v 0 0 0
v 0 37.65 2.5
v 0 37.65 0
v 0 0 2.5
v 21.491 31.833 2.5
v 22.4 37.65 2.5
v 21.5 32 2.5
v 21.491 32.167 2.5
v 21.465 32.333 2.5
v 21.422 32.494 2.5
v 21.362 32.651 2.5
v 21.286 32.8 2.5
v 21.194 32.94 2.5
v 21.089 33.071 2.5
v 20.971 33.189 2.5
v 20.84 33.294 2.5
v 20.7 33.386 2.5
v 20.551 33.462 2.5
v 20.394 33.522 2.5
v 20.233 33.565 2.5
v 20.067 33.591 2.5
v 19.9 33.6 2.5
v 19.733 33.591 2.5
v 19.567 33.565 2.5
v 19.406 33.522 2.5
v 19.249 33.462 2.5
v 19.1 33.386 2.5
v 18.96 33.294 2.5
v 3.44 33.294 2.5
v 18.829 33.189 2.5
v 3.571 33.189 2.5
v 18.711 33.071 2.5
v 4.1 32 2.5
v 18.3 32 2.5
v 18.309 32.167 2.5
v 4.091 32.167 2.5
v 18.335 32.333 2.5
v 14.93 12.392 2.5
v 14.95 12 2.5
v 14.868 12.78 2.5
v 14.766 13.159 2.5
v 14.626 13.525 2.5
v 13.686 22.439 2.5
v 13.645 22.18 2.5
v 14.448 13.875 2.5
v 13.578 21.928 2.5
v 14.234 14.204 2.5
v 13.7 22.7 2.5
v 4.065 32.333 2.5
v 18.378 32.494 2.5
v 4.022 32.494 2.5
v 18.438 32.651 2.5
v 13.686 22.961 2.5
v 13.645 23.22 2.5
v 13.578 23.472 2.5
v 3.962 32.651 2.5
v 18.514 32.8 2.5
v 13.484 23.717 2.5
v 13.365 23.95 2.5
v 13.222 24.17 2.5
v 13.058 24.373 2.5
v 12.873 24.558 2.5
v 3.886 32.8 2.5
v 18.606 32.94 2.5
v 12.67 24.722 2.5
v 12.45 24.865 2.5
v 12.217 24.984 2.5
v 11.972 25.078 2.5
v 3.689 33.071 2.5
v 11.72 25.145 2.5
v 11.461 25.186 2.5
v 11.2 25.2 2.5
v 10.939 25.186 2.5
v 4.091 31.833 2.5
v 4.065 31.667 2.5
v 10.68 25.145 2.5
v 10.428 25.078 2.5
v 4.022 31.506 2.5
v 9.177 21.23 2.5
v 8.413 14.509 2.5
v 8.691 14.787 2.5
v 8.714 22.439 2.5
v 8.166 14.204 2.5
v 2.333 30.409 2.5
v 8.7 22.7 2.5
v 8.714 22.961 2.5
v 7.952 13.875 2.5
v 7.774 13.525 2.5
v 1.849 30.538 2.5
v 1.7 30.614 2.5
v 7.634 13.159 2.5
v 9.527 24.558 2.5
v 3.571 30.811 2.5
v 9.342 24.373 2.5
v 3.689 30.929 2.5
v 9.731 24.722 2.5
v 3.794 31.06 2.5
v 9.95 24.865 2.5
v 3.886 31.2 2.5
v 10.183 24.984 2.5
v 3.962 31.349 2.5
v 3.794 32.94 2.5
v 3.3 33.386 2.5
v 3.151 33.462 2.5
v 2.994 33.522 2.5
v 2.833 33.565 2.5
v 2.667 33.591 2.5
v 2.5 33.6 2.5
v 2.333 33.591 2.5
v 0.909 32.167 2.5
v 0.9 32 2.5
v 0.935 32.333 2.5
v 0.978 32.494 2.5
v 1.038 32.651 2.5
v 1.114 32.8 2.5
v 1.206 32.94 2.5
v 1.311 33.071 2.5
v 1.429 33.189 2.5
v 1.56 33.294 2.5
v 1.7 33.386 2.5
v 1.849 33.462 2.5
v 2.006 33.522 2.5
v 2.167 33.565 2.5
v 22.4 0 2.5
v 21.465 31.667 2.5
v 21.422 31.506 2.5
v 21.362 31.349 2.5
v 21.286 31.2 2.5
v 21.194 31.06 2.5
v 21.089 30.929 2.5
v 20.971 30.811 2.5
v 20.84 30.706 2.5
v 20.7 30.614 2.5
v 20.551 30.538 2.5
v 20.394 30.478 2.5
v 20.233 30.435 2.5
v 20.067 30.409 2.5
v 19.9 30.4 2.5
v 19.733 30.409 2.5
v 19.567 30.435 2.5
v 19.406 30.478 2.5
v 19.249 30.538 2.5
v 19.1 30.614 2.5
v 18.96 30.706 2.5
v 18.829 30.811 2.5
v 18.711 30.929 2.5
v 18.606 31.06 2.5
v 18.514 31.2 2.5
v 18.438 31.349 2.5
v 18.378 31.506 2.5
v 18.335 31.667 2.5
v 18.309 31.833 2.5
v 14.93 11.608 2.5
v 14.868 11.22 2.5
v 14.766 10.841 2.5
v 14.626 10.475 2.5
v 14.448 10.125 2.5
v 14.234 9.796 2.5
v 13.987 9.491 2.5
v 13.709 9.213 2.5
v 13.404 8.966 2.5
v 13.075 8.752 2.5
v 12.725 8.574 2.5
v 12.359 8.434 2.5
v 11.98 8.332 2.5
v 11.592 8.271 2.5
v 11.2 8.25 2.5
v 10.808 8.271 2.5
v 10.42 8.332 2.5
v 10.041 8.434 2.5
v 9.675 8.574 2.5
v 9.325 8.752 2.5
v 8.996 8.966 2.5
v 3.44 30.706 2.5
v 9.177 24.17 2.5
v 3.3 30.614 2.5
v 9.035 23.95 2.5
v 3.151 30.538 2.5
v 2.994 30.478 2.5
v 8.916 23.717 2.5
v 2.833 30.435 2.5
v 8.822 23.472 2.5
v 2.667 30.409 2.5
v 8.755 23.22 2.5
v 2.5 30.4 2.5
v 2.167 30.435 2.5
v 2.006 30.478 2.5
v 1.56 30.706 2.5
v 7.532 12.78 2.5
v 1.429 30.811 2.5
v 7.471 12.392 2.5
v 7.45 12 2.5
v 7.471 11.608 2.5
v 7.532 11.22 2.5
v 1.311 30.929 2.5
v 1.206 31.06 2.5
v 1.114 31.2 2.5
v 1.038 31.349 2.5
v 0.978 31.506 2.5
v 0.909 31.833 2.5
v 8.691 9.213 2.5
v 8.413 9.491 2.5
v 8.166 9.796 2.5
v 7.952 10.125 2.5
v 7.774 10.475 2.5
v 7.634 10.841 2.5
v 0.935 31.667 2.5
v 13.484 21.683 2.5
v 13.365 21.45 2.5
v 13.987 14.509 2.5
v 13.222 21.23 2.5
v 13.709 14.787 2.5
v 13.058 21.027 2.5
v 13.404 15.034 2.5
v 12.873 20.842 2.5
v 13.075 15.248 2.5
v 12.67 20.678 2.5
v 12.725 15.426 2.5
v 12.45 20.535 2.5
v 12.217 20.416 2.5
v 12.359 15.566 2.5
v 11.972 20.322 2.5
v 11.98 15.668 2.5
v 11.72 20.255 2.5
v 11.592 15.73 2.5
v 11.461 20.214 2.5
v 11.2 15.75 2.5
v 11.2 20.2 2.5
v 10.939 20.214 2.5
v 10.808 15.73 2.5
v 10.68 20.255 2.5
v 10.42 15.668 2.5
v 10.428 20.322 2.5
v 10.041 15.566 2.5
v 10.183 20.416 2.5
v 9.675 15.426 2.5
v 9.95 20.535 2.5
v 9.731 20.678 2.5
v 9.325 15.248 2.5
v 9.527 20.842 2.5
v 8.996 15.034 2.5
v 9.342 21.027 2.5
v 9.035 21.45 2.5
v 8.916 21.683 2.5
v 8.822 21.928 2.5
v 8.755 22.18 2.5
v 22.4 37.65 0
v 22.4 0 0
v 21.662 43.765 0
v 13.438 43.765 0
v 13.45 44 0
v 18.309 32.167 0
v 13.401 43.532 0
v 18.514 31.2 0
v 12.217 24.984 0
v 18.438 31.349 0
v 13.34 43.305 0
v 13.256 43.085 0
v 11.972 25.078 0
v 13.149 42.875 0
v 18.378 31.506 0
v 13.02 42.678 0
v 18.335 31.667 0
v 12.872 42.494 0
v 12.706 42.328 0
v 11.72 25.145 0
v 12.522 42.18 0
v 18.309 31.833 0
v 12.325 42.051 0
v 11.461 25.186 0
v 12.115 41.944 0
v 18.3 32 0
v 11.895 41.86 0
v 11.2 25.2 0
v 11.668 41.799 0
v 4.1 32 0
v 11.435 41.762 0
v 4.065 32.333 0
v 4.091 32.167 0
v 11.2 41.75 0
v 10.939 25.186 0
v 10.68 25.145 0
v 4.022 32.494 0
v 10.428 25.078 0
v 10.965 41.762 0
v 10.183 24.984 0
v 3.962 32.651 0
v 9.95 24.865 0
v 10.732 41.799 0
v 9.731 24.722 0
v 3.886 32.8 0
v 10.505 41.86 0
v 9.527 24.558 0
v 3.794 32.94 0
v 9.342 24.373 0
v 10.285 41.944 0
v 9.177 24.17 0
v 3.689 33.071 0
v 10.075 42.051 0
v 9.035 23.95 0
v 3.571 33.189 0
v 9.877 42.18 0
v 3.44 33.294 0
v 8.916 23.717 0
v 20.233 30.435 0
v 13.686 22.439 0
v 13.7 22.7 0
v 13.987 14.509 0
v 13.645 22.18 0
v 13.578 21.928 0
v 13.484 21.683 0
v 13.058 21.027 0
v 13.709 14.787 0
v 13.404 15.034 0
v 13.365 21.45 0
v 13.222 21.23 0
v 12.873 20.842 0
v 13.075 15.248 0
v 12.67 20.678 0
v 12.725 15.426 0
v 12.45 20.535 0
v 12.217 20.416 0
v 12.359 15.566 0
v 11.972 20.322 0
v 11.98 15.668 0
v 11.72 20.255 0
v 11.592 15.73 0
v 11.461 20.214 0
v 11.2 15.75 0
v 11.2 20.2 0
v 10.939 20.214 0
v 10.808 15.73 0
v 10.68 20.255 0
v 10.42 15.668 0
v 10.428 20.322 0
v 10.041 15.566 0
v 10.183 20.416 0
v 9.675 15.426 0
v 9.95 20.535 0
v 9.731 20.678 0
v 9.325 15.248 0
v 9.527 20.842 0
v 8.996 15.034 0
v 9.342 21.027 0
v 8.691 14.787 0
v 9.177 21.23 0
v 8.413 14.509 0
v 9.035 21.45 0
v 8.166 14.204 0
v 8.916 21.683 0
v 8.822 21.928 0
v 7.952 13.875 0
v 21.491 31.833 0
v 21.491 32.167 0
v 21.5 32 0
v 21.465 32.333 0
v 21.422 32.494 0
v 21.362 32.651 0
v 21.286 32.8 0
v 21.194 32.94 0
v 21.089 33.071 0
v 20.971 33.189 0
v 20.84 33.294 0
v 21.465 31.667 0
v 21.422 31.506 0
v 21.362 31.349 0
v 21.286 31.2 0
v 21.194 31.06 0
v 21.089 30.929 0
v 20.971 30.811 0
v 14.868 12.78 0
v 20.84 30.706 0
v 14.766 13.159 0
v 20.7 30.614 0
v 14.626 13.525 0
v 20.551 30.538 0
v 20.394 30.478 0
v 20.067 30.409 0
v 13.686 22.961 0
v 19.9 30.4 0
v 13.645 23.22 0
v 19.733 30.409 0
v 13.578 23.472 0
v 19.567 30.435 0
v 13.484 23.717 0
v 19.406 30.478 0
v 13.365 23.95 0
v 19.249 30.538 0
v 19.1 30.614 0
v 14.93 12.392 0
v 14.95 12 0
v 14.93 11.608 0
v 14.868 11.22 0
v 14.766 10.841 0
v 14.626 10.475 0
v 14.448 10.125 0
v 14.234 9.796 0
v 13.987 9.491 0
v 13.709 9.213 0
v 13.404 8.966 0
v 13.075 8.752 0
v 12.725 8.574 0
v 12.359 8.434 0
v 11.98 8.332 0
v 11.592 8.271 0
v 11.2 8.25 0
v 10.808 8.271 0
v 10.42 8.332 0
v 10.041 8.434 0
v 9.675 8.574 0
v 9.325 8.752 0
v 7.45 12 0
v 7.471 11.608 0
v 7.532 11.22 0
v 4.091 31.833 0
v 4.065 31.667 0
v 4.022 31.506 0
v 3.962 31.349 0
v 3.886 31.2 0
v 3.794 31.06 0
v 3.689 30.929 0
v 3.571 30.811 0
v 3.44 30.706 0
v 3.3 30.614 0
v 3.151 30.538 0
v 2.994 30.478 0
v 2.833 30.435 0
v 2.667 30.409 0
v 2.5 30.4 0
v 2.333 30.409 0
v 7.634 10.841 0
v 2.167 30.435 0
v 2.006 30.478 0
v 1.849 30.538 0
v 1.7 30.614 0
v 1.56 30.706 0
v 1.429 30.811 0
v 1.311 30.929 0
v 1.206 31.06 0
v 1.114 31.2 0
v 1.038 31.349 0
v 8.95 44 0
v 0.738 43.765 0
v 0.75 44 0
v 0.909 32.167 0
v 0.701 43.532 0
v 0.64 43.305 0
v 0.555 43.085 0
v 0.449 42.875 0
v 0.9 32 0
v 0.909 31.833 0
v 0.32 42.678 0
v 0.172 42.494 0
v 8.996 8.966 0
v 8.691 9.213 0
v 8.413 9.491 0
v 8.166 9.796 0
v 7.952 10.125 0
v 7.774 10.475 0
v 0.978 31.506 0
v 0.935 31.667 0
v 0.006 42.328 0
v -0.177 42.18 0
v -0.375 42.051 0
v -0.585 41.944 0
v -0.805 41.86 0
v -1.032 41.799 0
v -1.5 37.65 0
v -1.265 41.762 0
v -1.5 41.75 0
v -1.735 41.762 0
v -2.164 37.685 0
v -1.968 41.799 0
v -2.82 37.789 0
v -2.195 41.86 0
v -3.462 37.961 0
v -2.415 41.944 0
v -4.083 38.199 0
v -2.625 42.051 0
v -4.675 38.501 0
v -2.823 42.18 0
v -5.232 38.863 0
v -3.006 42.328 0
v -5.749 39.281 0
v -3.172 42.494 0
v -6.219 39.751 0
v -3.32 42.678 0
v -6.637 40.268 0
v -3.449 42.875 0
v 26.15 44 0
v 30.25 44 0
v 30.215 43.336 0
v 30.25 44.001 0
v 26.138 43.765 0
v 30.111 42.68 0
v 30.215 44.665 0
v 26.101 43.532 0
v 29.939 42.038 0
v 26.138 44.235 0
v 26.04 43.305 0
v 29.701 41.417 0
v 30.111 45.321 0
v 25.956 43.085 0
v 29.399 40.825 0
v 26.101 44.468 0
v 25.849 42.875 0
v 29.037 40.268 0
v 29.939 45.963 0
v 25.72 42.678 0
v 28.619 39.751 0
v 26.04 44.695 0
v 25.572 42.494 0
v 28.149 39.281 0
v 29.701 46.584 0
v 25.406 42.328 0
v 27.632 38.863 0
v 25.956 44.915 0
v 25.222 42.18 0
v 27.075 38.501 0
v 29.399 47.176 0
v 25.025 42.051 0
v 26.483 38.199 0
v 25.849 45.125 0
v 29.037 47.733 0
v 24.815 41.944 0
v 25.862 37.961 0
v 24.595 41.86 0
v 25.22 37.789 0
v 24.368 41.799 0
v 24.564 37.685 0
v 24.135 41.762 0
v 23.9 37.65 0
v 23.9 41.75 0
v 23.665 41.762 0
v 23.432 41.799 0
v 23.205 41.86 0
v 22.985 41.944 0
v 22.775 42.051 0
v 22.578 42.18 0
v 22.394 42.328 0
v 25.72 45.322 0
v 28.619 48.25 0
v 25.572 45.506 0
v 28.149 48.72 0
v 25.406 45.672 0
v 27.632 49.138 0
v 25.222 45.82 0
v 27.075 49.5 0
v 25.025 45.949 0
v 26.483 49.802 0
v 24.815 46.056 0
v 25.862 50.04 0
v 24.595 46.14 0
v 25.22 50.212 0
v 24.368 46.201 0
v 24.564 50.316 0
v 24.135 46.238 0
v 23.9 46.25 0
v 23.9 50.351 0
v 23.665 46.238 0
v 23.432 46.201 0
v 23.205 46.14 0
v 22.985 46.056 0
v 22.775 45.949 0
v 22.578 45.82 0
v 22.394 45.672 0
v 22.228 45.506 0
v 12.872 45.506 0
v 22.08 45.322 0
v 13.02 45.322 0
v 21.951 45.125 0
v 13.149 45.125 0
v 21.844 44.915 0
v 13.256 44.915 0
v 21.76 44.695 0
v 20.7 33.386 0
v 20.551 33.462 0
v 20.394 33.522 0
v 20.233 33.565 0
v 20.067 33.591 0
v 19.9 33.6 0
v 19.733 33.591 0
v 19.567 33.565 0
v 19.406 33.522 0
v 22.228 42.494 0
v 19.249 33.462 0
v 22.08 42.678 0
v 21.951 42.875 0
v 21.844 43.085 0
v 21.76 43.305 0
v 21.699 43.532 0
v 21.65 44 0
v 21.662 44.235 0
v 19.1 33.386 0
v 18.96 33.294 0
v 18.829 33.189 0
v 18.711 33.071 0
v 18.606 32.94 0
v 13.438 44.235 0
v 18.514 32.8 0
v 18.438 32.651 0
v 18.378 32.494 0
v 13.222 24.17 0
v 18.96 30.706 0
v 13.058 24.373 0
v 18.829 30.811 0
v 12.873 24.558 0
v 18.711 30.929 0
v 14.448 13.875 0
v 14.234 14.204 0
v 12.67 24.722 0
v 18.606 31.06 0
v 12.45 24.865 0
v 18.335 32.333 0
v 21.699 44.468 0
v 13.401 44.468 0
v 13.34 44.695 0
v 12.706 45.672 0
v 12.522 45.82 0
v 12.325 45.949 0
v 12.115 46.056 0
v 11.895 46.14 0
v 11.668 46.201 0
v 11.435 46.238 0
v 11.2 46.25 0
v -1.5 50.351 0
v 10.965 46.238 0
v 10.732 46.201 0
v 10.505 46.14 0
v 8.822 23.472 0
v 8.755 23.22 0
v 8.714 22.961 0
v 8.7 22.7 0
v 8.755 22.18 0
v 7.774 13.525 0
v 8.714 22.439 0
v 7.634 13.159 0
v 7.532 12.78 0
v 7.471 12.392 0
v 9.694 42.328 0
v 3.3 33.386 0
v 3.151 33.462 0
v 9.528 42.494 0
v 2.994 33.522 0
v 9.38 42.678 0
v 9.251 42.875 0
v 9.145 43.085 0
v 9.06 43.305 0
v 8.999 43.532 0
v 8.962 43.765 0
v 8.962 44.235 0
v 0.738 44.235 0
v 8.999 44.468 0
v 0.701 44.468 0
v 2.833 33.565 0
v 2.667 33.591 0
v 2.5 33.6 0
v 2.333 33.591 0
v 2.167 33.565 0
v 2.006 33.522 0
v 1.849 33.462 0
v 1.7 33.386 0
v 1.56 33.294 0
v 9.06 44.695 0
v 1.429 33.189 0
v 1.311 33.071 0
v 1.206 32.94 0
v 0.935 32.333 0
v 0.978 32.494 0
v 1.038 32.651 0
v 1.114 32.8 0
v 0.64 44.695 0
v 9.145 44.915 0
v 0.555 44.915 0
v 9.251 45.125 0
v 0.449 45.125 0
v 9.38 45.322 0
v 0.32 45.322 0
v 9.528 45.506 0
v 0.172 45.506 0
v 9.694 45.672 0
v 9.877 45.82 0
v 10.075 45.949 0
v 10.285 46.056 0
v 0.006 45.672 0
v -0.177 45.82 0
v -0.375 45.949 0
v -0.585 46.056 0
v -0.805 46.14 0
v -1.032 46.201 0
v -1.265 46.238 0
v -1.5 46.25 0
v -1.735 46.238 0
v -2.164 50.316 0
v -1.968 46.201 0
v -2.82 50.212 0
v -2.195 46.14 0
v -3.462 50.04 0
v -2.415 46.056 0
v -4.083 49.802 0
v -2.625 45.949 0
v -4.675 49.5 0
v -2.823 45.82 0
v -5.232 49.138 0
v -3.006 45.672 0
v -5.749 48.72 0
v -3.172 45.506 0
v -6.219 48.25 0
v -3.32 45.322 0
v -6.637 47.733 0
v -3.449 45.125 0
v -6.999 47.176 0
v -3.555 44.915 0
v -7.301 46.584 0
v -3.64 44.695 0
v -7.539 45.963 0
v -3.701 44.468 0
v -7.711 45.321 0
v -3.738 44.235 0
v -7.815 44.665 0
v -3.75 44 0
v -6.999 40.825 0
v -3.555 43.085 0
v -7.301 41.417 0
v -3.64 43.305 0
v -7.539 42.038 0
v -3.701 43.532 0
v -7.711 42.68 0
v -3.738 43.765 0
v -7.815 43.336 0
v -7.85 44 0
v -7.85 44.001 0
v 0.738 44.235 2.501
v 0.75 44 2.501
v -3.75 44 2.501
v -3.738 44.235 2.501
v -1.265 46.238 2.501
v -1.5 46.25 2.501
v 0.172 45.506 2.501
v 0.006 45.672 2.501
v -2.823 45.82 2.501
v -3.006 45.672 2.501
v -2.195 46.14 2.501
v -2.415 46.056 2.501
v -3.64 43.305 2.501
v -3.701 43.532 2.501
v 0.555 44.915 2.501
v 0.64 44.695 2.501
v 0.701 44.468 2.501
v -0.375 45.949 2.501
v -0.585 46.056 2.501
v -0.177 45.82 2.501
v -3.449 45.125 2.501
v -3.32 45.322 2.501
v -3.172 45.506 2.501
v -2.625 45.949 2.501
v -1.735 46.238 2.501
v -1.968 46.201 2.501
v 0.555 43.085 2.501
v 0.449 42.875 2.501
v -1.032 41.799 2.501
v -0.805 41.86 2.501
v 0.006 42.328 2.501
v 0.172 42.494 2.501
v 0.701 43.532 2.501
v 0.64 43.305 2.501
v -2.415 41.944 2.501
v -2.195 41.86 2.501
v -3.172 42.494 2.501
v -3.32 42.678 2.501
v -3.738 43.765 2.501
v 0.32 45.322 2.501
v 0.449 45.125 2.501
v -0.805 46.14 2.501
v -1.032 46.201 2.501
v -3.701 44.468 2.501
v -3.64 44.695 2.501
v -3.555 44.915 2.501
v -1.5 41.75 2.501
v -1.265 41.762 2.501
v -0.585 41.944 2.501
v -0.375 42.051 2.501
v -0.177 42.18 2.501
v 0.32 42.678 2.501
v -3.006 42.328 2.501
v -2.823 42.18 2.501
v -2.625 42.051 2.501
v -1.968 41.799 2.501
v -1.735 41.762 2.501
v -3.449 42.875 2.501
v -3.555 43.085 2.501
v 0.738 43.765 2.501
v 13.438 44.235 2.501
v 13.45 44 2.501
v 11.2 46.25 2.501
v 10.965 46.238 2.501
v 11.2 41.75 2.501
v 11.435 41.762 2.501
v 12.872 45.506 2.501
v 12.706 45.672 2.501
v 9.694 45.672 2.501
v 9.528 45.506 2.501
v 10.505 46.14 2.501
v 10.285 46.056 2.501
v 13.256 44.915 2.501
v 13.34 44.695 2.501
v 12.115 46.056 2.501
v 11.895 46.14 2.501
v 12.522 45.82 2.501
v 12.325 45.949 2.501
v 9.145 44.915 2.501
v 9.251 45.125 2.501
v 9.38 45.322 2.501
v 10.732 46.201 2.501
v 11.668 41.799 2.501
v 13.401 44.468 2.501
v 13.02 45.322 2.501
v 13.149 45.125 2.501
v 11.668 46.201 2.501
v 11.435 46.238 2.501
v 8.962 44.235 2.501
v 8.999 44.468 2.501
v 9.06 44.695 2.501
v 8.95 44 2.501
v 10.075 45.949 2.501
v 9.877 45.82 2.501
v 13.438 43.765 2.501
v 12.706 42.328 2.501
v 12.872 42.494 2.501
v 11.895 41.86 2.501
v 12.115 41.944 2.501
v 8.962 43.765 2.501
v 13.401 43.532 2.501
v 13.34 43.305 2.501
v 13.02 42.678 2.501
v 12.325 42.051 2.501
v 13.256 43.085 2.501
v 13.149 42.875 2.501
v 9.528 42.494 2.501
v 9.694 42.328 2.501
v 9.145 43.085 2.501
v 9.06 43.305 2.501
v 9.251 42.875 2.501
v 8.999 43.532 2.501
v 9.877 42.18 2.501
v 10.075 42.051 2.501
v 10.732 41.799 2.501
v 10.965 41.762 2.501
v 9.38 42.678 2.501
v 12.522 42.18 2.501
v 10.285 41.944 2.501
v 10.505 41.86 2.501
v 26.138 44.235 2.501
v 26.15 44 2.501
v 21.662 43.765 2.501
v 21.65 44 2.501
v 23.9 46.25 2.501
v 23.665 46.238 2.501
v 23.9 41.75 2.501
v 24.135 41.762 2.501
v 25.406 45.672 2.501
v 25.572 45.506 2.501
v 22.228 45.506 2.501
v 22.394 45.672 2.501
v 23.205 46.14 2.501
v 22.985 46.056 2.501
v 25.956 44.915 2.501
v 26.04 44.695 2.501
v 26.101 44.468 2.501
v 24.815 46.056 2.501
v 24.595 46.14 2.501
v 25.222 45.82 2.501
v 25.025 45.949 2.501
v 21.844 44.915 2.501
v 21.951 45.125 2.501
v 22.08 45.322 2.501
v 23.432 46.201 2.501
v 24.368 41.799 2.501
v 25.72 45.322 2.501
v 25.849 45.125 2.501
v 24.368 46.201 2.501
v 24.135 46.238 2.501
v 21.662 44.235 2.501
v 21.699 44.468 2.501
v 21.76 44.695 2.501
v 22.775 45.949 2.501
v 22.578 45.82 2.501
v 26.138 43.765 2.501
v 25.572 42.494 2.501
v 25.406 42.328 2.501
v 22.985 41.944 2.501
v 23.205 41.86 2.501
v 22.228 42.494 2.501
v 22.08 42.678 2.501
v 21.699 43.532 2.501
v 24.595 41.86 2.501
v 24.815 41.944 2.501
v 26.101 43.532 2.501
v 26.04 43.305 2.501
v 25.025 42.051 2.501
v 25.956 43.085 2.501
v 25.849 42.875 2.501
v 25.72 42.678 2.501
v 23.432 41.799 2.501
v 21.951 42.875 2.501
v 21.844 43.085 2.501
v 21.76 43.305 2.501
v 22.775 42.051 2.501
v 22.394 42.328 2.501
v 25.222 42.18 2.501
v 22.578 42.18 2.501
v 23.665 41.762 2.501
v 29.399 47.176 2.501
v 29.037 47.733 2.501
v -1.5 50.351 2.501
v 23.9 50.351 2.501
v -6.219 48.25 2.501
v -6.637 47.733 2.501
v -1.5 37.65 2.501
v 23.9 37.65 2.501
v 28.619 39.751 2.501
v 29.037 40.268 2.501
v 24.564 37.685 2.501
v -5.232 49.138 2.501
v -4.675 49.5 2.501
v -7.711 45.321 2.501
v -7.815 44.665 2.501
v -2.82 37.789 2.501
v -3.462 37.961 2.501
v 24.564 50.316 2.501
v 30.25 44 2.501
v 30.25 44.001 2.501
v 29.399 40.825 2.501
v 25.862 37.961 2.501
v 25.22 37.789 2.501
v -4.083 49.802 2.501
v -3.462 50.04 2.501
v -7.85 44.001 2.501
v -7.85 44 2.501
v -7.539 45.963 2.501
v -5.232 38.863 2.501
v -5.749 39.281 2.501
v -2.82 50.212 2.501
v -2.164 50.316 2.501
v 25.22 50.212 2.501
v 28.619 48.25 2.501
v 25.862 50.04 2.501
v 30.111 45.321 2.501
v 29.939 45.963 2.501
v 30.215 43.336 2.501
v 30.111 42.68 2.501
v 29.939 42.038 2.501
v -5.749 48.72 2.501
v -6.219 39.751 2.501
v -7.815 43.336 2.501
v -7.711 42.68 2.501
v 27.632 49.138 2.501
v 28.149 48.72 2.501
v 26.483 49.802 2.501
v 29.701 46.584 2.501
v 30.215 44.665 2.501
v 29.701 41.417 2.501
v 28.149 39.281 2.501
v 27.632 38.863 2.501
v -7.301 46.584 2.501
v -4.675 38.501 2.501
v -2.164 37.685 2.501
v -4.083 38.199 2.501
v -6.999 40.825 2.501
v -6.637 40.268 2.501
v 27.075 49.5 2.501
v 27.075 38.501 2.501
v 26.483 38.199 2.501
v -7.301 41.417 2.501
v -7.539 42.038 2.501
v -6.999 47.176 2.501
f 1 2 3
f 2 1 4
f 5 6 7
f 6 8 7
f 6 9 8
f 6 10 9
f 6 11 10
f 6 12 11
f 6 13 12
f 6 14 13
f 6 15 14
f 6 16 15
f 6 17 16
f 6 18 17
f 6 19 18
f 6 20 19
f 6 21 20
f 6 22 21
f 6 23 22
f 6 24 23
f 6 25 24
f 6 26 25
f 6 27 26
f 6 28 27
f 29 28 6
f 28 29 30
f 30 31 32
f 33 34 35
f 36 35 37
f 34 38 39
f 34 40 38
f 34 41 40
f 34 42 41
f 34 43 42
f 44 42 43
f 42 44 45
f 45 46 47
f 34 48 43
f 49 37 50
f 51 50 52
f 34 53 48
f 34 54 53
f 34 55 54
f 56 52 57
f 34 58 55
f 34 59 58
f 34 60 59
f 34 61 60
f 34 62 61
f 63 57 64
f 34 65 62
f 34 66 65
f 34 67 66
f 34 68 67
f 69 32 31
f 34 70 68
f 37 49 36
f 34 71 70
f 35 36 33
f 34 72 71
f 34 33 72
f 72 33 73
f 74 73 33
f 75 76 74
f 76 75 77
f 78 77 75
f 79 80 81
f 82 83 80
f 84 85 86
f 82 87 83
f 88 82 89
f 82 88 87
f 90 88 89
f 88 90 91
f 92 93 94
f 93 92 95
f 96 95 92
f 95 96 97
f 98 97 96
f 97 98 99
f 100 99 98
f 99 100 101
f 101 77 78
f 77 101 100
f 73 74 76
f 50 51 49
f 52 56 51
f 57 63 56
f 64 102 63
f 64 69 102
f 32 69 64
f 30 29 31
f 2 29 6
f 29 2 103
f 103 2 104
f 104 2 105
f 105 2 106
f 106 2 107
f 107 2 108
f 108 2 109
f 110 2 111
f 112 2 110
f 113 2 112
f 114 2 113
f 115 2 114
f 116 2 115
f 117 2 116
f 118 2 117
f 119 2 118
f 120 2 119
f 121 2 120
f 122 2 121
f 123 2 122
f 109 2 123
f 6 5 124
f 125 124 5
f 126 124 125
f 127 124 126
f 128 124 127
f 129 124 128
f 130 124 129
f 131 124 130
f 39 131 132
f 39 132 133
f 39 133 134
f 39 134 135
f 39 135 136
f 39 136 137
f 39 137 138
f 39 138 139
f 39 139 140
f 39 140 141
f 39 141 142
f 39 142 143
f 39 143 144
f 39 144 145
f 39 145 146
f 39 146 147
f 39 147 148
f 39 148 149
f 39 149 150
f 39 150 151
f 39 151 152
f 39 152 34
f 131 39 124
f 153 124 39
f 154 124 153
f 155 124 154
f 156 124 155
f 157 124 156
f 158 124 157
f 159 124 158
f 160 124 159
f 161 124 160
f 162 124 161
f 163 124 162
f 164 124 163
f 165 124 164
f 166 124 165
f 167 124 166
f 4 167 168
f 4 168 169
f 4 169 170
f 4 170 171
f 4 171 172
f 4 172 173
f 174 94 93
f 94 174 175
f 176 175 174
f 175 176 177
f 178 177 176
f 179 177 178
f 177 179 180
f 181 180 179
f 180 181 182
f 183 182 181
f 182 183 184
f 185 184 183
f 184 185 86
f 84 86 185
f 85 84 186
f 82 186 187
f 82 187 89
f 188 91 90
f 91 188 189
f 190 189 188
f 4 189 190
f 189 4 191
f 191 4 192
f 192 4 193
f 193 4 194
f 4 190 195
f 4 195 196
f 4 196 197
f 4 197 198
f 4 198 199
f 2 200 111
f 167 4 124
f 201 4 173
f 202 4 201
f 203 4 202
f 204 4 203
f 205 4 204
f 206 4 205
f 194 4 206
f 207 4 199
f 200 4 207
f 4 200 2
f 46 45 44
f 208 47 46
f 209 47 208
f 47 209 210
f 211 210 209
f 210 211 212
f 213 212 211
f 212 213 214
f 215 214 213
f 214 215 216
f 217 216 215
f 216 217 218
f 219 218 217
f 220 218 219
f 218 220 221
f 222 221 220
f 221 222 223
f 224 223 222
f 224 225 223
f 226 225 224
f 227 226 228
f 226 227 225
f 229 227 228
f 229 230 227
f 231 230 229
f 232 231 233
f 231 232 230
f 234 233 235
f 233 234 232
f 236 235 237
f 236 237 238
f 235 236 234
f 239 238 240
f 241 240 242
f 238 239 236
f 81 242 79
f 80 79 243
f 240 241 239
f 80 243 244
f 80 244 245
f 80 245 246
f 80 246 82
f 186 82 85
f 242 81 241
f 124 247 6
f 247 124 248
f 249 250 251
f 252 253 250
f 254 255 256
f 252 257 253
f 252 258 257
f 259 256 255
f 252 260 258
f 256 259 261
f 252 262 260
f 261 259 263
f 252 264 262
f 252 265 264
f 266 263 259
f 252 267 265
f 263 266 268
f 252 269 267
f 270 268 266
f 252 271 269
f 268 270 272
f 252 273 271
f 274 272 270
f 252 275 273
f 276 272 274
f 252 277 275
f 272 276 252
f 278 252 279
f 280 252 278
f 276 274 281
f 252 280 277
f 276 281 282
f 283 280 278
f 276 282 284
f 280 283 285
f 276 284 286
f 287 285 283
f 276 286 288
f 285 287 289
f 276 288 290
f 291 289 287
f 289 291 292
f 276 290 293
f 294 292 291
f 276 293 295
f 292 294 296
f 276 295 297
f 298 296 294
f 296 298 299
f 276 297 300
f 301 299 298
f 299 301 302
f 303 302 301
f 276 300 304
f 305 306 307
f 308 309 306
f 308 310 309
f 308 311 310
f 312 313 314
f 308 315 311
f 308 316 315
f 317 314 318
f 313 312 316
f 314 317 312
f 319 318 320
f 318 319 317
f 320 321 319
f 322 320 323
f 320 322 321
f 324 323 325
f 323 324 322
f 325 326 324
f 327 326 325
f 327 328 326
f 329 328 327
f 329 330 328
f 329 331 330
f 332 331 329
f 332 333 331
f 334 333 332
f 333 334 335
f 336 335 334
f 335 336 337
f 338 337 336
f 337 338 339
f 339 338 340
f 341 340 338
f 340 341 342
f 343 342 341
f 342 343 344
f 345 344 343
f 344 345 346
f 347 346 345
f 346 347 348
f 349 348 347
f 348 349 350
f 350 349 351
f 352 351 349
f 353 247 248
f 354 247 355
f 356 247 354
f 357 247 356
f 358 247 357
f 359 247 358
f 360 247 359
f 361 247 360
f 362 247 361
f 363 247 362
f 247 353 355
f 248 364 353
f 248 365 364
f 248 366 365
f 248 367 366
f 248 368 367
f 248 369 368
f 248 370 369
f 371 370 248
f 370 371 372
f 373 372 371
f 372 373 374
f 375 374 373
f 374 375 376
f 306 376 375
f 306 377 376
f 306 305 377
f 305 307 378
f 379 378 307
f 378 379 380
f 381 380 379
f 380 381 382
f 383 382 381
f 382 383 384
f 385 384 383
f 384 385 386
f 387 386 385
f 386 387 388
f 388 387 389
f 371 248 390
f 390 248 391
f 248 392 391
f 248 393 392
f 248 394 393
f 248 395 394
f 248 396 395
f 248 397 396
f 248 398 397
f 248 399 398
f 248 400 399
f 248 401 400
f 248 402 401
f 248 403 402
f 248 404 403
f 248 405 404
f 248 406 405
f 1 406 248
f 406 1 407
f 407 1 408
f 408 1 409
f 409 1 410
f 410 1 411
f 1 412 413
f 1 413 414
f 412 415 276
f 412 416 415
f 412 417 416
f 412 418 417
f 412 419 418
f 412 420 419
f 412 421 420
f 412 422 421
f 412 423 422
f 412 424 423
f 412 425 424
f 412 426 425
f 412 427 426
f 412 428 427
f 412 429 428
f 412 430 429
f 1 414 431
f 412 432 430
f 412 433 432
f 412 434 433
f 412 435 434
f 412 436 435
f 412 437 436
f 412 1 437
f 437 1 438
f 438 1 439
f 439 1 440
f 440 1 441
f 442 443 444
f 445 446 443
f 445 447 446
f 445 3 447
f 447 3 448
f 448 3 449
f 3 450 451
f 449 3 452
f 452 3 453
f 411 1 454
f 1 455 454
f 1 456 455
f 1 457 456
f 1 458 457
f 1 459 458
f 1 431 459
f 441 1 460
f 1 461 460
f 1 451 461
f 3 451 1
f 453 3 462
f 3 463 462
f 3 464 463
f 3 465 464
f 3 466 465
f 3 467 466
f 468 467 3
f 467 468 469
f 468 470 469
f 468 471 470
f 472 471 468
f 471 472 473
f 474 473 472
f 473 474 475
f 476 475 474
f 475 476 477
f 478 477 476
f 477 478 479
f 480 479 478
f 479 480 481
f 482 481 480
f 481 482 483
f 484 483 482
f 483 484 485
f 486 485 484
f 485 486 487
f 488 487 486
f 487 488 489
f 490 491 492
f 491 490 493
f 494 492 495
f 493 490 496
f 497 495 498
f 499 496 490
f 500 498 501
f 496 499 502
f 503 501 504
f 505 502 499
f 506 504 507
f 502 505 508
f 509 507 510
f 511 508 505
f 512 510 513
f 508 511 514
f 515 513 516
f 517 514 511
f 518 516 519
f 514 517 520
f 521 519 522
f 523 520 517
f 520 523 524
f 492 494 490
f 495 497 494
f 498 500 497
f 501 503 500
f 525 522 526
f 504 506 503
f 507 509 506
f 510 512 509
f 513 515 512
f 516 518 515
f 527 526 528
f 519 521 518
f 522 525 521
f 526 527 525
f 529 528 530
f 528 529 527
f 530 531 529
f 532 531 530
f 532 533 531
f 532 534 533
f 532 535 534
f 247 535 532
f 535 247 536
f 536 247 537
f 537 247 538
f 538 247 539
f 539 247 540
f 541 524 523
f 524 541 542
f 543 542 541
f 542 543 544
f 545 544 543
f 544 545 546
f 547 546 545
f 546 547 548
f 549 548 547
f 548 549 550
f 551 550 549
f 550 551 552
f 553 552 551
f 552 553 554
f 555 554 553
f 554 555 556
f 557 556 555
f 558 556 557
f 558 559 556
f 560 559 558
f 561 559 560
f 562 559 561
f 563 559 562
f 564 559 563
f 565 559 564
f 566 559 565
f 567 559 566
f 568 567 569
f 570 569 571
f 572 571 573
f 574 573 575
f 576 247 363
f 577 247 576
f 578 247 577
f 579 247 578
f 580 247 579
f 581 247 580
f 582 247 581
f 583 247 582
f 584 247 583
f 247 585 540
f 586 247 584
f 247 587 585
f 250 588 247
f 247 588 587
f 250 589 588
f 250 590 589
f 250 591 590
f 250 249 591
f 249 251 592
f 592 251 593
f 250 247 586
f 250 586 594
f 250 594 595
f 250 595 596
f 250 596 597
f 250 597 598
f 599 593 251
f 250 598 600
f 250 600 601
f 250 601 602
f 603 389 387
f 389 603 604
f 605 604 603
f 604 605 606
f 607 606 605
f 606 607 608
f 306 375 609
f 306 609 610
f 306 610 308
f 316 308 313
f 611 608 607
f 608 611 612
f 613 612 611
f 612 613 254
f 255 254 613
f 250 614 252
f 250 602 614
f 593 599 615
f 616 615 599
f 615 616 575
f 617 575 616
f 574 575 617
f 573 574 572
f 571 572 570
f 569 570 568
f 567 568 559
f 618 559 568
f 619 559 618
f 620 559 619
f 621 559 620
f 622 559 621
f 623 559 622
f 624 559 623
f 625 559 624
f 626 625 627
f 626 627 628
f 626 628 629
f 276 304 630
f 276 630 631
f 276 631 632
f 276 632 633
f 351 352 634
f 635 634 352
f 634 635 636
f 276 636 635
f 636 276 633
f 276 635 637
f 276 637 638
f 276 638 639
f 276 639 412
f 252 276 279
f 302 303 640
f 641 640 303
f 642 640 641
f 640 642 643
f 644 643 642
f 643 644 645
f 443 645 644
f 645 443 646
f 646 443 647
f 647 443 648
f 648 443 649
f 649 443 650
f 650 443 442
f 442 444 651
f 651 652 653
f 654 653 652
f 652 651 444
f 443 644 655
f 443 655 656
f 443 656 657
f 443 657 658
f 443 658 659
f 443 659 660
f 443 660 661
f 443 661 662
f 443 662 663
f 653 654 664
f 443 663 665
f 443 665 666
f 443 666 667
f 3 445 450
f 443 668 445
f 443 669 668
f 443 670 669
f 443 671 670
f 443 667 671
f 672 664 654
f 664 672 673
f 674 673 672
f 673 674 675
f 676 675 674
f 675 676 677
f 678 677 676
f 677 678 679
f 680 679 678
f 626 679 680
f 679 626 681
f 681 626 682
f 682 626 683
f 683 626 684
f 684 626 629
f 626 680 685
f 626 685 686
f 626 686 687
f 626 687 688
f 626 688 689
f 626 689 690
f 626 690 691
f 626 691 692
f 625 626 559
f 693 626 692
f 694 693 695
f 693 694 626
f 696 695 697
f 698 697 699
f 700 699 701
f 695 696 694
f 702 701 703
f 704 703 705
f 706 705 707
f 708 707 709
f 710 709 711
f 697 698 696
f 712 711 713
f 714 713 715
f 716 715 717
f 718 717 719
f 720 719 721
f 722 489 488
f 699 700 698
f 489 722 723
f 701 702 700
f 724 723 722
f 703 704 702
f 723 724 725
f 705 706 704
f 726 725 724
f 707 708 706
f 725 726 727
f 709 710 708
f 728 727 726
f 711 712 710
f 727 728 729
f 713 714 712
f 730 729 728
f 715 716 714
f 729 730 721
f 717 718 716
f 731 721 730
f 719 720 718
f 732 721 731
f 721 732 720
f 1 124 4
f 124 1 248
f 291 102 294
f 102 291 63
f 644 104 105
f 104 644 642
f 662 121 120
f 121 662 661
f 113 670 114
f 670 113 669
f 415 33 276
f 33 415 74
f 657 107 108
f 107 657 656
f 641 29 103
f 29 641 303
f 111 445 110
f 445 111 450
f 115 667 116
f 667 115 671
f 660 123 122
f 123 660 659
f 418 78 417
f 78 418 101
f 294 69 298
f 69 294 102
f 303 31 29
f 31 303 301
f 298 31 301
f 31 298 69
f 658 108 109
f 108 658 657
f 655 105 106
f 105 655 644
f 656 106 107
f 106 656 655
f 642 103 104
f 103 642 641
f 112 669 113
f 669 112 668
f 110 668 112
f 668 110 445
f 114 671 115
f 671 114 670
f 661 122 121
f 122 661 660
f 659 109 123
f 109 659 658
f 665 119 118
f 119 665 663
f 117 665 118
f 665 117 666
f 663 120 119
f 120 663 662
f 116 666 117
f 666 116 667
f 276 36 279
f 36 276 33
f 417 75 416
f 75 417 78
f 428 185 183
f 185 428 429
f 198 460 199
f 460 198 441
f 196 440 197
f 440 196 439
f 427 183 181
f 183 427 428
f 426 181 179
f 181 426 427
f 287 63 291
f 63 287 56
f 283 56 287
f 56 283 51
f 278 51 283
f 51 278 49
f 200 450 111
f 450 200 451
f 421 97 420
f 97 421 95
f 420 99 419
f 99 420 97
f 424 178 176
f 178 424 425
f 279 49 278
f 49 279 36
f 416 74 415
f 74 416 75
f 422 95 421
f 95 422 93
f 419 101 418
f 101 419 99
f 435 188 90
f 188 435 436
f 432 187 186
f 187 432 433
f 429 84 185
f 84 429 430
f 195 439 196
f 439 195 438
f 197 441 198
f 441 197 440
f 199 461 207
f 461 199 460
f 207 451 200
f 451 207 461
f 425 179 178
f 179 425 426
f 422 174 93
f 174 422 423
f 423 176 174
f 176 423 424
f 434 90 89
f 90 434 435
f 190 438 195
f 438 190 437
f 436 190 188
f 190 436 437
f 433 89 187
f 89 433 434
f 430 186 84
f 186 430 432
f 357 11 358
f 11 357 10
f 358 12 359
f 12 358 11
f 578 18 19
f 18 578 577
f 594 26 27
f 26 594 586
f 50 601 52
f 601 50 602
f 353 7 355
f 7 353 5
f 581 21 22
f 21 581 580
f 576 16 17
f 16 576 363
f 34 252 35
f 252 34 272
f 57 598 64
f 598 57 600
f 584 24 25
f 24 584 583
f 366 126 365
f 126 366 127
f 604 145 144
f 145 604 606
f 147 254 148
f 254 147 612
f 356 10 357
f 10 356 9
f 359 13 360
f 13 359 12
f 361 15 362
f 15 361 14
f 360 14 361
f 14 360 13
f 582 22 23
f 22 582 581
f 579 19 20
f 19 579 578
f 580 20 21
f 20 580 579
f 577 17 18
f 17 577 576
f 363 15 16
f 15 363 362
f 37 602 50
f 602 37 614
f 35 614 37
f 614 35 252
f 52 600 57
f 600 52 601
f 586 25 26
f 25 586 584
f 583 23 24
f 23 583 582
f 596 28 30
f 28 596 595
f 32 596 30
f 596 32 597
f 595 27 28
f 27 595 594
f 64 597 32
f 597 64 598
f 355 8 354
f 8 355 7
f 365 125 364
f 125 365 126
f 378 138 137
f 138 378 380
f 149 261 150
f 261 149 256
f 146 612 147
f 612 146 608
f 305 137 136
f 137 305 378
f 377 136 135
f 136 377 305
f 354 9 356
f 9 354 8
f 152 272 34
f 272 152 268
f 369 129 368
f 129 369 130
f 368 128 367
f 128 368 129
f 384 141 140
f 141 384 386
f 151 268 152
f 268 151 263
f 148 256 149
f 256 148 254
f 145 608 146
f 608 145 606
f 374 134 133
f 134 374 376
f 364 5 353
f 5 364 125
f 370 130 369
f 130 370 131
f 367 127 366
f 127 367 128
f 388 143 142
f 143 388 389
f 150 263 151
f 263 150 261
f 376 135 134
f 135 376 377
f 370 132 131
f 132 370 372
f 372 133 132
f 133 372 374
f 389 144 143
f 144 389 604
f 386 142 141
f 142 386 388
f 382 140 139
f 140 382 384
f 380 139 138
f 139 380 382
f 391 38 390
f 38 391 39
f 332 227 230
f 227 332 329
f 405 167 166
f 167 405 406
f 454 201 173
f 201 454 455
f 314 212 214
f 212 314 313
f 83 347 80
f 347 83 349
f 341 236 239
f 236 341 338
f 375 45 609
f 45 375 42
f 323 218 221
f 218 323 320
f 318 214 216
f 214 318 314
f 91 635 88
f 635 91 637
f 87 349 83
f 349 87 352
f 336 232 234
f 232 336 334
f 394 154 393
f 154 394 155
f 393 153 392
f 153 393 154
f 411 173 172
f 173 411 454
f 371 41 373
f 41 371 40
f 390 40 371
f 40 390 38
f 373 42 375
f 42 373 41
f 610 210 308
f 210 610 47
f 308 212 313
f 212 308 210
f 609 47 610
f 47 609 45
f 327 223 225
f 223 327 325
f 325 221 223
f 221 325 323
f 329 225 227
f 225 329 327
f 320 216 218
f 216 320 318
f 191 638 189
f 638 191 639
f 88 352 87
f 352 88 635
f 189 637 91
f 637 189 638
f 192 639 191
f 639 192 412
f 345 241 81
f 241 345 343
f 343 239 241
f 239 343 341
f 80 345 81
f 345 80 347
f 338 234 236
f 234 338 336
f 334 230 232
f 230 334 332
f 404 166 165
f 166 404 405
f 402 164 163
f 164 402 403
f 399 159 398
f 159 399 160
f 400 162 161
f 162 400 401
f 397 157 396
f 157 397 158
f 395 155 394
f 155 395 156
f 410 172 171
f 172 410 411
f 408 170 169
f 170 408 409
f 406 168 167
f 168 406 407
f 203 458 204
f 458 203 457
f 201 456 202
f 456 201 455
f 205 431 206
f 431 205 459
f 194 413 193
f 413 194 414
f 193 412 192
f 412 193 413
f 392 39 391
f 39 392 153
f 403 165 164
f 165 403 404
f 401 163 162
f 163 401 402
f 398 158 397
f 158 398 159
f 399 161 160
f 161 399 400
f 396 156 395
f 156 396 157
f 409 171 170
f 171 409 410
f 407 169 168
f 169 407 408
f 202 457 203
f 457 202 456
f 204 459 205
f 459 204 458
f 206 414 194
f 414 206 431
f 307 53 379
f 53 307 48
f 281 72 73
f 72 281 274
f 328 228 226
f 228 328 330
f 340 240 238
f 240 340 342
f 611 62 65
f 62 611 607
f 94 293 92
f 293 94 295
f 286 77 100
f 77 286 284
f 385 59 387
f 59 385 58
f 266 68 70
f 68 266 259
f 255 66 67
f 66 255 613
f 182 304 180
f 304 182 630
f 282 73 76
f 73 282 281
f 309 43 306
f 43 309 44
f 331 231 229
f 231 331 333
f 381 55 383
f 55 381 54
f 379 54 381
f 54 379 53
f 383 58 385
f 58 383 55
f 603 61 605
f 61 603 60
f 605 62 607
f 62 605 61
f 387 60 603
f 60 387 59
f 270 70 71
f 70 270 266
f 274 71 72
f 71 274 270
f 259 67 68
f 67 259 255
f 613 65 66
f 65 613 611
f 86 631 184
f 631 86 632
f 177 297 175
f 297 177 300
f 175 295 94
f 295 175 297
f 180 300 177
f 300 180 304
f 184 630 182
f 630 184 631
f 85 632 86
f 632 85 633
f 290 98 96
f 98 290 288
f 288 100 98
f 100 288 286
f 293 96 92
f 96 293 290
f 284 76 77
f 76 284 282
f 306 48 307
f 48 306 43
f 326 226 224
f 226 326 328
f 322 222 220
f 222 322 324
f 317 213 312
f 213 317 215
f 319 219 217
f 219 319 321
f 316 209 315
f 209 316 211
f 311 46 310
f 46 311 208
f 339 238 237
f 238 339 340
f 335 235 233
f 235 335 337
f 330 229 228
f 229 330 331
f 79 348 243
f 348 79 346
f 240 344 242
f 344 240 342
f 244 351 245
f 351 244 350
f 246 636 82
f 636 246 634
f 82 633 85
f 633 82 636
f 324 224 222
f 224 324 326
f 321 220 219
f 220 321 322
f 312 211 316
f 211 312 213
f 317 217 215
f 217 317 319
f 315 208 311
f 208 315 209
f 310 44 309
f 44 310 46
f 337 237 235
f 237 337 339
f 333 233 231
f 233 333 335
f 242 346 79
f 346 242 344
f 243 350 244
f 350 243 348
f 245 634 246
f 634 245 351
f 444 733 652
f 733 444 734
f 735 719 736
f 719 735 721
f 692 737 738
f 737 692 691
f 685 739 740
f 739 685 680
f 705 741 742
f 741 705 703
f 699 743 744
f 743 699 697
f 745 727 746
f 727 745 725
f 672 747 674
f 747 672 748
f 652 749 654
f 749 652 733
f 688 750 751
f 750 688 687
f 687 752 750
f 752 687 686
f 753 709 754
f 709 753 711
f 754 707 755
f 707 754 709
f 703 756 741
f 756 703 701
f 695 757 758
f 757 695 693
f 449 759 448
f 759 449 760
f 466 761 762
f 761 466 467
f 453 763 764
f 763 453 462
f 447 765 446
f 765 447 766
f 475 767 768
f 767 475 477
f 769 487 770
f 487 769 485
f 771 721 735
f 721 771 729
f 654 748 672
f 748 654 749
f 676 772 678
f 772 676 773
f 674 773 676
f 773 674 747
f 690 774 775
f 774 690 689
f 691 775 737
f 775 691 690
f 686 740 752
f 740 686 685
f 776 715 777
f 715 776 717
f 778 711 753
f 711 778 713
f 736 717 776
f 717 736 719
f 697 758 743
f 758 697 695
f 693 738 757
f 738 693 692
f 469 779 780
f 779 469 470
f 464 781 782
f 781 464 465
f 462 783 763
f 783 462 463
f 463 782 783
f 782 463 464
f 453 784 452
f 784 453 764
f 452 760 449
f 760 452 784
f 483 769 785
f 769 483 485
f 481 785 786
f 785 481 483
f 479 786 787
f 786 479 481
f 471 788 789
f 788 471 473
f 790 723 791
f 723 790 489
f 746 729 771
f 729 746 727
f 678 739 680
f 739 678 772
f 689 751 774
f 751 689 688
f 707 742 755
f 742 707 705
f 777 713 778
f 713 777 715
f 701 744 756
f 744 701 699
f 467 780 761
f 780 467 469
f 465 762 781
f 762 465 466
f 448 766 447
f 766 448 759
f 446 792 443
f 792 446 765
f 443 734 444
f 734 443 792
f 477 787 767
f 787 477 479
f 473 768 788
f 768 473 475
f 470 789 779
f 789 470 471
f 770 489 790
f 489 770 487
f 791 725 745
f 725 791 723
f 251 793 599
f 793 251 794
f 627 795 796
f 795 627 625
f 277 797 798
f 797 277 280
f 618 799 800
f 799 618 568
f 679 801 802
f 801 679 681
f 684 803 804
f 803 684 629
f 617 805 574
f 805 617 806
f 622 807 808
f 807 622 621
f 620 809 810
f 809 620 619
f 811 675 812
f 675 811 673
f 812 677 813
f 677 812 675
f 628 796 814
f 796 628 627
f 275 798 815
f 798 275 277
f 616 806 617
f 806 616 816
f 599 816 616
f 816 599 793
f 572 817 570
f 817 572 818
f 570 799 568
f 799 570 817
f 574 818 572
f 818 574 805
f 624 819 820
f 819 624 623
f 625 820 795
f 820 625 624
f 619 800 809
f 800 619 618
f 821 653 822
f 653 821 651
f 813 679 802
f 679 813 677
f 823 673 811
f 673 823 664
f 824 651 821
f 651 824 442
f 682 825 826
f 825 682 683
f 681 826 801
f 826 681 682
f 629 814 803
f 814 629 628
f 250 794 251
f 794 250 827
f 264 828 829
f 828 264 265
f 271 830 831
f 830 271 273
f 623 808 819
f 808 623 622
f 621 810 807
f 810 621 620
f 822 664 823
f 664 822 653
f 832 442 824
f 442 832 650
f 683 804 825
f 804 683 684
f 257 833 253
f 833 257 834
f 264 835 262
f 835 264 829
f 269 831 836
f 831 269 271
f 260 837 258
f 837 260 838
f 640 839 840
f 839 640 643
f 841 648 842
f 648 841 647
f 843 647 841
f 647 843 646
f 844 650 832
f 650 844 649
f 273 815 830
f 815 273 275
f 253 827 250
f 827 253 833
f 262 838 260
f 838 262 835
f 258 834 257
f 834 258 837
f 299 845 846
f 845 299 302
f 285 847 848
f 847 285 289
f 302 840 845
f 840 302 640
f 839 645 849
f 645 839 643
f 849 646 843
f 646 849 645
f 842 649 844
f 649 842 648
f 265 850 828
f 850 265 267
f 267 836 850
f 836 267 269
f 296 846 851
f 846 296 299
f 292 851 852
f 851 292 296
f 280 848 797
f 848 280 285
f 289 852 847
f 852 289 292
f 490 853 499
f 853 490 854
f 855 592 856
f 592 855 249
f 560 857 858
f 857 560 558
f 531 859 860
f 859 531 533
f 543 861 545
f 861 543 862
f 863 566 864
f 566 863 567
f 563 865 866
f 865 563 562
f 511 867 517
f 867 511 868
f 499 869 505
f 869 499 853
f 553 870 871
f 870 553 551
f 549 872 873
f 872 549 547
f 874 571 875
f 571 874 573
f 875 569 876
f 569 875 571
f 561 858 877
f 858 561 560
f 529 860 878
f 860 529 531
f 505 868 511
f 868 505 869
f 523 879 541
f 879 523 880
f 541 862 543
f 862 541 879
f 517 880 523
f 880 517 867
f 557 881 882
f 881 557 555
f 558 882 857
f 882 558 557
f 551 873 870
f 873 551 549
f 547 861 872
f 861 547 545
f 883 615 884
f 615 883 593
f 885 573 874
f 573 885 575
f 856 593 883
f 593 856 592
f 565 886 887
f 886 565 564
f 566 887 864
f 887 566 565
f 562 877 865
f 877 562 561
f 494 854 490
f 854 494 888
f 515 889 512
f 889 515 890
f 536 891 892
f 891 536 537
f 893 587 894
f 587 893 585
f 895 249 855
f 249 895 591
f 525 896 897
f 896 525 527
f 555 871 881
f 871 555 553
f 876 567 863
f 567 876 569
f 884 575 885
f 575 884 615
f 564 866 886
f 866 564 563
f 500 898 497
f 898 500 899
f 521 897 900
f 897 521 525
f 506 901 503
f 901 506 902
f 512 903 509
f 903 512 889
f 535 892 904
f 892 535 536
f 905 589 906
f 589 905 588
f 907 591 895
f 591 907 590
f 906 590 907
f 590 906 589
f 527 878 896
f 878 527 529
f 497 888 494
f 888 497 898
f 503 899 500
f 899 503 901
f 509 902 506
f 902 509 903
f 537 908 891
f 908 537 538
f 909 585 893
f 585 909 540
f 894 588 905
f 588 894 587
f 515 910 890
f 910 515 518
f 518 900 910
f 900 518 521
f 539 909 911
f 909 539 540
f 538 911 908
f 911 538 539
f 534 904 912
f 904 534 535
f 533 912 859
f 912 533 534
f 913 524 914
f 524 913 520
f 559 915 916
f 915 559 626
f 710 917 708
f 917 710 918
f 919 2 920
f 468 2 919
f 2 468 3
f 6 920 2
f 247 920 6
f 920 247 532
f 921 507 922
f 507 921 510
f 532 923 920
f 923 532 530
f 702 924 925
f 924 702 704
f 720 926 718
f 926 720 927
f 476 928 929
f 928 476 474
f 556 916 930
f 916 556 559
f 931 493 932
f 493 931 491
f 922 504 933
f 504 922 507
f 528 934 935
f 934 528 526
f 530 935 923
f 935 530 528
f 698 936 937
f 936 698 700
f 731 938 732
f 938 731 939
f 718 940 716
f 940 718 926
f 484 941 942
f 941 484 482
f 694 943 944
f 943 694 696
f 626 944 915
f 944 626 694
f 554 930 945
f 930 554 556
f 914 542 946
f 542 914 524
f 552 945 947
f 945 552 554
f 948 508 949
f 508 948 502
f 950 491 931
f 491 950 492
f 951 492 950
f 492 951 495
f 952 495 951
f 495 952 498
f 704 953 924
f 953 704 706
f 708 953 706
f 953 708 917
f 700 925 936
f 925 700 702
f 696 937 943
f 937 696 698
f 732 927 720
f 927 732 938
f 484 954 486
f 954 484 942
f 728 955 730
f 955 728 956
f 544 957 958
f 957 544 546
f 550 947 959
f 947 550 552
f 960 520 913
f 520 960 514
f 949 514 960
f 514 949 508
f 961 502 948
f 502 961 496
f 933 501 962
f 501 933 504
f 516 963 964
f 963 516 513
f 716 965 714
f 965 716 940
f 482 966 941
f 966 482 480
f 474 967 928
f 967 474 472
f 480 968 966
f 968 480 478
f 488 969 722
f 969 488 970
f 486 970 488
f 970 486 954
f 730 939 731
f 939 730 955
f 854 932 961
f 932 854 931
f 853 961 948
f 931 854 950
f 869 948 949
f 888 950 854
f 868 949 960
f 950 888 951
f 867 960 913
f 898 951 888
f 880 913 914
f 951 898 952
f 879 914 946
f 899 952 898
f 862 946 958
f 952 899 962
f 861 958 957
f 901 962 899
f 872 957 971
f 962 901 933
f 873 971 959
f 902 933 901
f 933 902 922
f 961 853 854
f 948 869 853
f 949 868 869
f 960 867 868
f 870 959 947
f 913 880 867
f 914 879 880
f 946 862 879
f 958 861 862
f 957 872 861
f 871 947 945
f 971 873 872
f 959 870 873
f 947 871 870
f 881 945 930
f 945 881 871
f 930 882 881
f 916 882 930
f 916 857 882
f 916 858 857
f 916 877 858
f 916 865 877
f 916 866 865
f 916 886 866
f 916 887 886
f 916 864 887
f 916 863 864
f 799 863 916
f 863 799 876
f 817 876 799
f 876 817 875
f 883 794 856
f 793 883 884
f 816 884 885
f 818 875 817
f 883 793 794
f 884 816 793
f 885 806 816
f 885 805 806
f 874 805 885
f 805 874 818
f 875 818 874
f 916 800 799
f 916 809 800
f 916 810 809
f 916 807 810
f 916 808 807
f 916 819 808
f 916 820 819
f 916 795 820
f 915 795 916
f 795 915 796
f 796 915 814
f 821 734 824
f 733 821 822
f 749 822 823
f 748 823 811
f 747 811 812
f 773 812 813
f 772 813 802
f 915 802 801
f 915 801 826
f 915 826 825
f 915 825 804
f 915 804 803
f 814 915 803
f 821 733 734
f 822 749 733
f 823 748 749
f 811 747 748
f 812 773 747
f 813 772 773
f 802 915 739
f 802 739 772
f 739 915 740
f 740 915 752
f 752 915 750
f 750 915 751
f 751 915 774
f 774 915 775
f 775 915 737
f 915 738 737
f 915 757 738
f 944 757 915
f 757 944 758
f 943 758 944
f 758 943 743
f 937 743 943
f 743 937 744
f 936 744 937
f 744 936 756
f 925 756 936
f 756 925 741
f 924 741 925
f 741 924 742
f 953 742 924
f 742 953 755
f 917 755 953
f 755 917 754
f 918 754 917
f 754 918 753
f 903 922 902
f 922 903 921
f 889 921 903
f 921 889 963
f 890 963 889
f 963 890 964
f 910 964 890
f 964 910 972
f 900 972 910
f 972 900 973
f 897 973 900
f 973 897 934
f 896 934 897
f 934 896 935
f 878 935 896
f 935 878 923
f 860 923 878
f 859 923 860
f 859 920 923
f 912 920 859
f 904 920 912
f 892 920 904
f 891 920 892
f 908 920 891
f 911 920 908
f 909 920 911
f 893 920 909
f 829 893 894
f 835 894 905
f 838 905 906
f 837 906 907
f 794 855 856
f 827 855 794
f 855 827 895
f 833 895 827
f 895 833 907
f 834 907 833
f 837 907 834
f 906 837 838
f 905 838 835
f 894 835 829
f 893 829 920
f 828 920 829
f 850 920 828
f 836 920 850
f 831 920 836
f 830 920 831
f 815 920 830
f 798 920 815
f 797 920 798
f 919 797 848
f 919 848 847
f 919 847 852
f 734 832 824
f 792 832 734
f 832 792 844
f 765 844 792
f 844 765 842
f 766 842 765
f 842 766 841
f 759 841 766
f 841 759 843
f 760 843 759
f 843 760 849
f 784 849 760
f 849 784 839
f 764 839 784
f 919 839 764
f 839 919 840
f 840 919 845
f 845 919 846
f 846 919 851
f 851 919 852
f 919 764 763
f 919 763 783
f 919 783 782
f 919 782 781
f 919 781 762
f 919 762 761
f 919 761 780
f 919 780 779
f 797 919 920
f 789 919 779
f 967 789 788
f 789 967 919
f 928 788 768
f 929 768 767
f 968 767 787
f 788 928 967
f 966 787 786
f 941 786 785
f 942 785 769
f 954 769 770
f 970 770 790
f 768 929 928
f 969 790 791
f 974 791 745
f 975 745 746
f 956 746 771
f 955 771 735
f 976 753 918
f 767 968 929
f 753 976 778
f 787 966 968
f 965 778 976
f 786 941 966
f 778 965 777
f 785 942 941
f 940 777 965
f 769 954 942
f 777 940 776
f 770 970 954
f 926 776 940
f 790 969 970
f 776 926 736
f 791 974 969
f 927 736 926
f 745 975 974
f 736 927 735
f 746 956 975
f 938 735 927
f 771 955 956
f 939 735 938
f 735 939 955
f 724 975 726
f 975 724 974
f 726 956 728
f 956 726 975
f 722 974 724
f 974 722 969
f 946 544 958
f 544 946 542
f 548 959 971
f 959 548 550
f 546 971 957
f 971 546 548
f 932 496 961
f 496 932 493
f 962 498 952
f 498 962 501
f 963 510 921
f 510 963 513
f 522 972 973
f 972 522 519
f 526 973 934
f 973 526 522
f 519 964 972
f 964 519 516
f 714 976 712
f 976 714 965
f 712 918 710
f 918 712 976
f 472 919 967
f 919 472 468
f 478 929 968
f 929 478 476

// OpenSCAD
$fn=60;

difference(){

translate([0,0,0])cube([22.4,38,2.5]);

translate([2.5,32,-1])cylinder(d=3.2,h=5);
translate([19.9,32,-1])cylinder(d=3.2,h=5);
translate([11.2,12,-1])cylinder(d=7.5,h=5);    
translate([11.2,22.7,-1])cylinder(d=5,h=5);
  
}

translate([-1.5,44,0])meccano(n=3);

module meccano(n=2){
difference(){
    minkowski(){
        cylinder(d=12.7,h=2.5);
        cube([(n-1)*12.7,.001,0.001]);
    }
    for (i=[0:n-1]){
        translate([i*12.7,0,-1])cylinder(d=4.5,h=5);
    }
}
}
